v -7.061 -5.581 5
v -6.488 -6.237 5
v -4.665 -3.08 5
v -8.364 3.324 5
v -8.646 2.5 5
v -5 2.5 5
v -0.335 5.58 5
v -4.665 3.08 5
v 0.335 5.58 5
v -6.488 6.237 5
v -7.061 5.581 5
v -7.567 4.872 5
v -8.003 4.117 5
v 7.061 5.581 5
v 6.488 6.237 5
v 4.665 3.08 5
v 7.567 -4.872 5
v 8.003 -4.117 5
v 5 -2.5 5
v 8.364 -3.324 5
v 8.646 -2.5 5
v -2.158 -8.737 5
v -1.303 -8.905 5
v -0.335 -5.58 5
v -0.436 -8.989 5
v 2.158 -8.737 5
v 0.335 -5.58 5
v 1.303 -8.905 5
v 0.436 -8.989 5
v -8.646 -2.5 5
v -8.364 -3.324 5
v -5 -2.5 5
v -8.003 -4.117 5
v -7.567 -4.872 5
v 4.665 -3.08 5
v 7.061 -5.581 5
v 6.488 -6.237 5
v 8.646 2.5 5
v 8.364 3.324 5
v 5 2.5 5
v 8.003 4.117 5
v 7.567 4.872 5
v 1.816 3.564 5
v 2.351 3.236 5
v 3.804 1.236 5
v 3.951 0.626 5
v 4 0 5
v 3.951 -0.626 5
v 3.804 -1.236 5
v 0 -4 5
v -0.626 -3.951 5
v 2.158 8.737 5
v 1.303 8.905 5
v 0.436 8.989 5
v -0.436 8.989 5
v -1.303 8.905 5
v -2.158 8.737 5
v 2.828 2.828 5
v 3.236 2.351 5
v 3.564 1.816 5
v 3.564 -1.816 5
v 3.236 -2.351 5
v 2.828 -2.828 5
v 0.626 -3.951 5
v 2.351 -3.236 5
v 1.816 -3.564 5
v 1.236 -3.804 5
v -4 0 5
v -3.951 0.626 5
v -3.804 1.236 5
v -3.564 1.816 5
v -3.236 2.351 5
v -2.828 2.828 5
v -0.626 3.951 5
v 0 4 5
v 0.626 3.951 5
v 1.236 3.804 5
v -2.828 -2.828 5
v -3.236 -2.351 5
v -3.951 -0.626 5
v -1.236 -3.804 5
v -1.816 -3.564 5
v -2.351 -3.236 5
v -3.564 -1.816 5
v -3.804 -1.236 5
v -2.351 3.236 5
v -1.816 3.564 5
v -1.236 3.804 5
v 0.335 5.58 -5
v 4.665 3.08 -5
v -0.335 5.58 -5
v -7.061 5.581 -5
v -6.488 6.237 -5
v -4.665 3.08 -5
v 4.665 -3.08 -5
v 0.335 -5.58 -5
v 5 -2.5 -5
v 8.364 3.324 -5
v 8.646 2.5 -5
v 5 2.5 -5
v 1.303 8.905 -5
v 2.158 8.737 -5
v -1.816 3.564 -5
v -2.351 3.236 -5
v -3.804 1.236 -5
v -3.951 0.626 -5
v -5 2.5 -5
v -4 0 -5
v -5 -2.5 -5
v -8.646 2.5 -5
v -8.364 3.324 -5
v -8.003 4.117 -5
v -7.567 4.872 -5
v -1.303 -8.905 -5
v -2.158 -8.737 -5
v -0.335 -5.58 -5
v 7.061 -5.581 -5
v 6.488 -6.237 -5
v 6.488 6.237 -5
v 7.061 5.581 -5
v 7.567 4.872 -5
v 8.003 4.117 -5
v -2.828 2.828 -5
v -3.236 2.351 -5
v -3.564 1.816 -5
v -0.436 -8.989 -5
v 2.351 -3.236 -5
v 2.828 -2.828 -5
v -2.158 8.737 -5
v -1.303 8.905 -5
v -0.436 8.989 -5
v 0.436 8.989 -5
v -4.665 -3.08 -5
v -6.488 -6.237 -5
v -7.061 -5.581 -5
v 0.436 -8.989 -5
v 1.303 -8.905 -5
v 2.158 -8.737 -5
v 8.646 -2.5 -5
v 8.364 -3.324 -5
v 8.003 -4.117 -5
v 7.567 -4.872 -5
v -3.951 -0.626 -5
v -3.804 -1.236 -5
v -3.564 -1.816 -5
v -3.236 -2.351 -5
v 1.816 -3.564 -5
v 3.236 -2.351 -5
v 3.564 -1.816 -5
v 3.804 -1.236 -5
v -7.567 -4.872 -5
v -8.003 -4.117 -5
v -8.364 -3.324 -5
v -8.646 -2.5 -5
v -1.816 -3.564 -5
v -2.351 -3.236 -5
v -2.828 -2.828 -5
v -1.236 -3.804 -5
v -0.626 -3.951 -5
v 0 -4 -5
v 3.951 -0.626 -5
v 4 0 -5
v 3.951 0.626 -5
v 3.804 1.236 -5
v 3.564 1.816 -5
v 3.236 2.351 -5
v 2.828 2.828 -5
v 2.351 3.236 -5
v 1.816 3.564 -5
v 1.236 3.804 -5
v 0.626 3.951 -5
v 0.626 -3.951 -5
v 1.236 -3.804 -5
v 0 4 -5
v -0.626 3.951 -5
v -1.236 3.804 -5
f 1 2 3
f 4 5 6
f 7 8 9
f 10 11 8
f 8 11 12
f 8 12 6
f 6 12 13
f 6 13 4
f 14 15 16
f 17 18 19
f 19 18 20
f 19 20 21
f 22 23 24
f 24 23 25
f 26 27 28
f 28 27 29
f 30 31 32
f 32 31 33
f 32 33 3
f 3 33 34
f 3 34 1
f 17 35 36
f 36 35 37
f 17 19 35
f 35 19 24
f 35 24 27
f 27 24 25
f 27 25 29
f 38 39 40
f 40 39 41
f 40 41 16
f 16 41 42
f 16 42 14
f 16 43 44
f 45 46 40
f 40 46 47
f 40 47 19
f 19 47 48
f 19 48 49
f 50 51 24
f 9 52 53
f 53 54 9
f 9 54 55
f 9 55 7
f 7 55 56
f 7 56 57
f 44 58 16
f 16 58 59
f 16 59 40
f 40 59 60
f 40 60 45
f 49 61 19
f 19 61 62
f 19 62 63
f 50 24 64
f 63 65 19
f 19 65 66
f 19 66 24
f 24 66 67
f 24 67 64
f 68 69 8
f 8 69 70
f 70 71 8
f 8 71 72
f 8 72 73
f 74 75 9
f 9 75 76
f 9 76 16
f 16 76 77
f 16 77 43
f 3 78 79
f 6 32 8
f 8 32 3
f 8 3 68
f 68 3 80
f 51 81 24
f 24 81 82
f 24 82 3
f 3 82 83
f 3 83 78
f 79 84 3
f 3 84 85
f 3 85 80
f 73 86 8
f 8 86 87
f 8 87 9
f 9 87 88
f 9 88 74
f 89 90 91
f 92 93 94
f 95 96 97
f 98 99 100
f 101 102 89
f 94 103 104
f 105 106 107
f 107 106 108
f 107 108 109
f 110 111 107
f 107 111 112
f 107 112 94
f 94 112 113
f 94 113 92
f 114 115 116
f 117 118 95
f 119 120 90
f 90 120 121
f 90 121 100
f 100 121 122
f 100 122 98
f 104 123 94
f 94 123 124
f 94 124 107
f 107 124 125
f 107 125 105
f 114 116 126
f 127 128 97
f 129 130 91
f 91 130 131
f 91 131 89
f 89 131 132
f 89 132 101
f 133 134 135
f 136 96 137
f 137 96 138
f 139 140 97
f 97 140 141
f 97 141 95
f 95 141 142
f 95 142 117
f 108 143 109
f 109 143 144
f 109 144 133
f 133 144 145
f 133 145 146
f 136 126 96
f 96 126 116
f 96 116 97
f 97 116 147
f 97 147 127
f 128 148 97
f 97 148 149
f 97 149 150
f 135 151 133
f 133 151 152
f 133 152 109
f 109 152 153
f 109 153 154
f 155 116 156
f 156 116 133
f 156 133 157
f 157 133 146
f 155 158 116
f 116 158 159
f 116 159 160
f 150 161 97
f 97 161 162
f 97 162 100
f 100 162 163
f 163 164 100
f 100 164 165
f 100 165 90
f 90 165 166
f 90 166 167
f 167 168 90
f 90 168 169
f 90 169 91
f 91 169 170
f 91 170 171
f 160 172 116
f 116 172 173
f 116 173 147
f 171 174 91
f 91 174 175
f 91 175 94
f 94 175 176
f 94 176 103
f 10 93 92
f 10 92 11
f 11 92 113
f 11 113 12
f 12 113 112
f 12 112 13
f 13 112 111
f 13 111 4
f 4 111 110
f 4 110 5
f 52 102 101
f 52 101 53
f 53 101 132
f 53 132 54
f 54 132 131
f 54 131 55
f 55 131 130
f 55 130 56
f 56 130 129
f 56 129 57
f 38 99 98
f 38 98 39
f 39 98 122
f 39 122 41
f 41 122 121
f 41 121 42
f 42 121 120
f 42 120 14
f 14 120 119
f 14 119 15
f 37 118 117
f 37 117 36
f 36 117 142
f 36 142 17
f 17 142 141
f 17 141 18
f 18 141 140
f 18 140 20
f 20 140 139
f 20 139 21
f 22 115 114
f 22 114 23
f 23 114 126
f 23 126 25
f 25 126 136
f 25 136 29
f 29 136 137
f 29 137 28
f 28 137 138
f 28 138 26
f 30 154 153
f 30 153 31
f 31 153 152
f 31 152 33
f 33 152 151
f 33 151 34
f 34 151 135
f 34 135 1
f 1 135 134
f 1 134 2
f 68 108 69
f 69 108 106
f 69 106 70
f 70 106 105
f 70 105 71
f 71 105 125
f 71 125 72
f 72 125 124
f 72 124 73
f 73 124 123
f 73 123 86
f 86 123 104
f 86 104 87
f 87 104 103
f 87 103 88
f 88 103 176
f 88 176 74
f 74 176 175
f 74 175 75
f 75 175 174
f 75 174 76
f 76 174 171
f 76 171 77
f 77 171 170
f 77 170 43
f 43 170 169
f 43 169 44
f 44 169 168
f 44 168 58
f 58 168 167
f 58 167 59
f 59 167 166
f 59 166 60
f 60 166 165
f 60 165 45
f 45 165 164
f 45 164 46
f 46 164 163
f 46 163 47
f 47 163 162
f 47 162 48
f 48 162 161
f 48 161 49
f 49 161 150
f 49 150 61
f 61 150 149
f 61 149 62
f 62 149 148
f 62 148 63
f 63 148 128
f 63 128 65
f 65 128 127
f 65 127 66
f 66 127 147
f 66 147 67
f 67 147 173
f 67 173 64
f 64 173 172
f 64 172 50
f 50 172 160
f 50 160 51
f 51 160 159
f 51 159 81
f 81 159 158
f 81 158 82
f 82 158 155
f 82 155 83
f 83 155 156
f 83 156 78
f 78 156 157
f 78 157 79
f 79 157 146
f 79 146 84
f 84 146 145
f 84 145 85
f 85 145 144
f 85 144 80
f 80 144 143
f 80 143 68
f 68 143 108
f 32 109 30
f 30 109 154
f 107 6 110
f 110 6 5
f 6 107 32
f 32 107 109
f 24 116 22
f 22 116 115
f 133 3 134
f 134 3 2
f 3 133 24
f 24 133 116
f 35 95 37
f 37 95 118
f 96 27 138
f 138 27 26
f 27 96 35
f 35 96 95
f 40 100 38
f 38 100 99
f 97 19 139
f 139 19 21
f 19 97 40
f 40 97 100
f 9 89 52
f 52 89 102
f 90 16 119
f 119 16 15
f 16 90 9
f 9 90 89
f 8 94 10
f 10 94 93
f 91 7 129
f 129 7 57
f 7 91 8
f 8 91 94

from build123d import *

# Parameters (mm, degrees)
SKETCH1_R           = 9
SKETCH1_R_2         = 4
BOSS_EXTRUDE1_DEPTH = 5
SKETCH2_W           = 5
SKETCH2_H           = 10
CUT_EXTRUDE3_DEPTH  = 4
CIRPATTERN1_COUNT   = 6


with BuildPart() as part:
    # Sketch1 → Boss-Extrude1 (new, symmetric)
    with BuildSketch(Plane.XY):
        Circle(SKETCH1_R)
        Circle(SKETCH1_R_2, mode=Mode.SUBTRACT)
    extrude(amount=BOSS_EXTRUDE1_DEPTH, both=True)

    # Sketch2 → Cut-Extrude3 (cut)
    with BuildSketch(Plane(origin=(-9, -17.193061184, 0), x_dir=(0, -1, 0), z_dir=(1, 0, 0))):
        with Locations((-17.193061184, 0)):
            Rectangle(SKETCH2_W, SKETCH2_H)
    cut_extrude3 = extrude(amount=CUT_EXTRUDE3_DEPTH, mode=Mode.SUBTRACT)

    # CirPattern1: Cut-Extrude3 ×6 about axis
    cirpattern1_axis = Axis((0, 0, 5), (0, 0, 1))
    for i in range(1, CIRPATTERN1_COUNT):
        add(cut_extrude3.rotate(cirpattern1_axis, i * 360 / CIRPATTERN1_COUNT), mode=Mode.SUBTRACT)


solid = part.part
